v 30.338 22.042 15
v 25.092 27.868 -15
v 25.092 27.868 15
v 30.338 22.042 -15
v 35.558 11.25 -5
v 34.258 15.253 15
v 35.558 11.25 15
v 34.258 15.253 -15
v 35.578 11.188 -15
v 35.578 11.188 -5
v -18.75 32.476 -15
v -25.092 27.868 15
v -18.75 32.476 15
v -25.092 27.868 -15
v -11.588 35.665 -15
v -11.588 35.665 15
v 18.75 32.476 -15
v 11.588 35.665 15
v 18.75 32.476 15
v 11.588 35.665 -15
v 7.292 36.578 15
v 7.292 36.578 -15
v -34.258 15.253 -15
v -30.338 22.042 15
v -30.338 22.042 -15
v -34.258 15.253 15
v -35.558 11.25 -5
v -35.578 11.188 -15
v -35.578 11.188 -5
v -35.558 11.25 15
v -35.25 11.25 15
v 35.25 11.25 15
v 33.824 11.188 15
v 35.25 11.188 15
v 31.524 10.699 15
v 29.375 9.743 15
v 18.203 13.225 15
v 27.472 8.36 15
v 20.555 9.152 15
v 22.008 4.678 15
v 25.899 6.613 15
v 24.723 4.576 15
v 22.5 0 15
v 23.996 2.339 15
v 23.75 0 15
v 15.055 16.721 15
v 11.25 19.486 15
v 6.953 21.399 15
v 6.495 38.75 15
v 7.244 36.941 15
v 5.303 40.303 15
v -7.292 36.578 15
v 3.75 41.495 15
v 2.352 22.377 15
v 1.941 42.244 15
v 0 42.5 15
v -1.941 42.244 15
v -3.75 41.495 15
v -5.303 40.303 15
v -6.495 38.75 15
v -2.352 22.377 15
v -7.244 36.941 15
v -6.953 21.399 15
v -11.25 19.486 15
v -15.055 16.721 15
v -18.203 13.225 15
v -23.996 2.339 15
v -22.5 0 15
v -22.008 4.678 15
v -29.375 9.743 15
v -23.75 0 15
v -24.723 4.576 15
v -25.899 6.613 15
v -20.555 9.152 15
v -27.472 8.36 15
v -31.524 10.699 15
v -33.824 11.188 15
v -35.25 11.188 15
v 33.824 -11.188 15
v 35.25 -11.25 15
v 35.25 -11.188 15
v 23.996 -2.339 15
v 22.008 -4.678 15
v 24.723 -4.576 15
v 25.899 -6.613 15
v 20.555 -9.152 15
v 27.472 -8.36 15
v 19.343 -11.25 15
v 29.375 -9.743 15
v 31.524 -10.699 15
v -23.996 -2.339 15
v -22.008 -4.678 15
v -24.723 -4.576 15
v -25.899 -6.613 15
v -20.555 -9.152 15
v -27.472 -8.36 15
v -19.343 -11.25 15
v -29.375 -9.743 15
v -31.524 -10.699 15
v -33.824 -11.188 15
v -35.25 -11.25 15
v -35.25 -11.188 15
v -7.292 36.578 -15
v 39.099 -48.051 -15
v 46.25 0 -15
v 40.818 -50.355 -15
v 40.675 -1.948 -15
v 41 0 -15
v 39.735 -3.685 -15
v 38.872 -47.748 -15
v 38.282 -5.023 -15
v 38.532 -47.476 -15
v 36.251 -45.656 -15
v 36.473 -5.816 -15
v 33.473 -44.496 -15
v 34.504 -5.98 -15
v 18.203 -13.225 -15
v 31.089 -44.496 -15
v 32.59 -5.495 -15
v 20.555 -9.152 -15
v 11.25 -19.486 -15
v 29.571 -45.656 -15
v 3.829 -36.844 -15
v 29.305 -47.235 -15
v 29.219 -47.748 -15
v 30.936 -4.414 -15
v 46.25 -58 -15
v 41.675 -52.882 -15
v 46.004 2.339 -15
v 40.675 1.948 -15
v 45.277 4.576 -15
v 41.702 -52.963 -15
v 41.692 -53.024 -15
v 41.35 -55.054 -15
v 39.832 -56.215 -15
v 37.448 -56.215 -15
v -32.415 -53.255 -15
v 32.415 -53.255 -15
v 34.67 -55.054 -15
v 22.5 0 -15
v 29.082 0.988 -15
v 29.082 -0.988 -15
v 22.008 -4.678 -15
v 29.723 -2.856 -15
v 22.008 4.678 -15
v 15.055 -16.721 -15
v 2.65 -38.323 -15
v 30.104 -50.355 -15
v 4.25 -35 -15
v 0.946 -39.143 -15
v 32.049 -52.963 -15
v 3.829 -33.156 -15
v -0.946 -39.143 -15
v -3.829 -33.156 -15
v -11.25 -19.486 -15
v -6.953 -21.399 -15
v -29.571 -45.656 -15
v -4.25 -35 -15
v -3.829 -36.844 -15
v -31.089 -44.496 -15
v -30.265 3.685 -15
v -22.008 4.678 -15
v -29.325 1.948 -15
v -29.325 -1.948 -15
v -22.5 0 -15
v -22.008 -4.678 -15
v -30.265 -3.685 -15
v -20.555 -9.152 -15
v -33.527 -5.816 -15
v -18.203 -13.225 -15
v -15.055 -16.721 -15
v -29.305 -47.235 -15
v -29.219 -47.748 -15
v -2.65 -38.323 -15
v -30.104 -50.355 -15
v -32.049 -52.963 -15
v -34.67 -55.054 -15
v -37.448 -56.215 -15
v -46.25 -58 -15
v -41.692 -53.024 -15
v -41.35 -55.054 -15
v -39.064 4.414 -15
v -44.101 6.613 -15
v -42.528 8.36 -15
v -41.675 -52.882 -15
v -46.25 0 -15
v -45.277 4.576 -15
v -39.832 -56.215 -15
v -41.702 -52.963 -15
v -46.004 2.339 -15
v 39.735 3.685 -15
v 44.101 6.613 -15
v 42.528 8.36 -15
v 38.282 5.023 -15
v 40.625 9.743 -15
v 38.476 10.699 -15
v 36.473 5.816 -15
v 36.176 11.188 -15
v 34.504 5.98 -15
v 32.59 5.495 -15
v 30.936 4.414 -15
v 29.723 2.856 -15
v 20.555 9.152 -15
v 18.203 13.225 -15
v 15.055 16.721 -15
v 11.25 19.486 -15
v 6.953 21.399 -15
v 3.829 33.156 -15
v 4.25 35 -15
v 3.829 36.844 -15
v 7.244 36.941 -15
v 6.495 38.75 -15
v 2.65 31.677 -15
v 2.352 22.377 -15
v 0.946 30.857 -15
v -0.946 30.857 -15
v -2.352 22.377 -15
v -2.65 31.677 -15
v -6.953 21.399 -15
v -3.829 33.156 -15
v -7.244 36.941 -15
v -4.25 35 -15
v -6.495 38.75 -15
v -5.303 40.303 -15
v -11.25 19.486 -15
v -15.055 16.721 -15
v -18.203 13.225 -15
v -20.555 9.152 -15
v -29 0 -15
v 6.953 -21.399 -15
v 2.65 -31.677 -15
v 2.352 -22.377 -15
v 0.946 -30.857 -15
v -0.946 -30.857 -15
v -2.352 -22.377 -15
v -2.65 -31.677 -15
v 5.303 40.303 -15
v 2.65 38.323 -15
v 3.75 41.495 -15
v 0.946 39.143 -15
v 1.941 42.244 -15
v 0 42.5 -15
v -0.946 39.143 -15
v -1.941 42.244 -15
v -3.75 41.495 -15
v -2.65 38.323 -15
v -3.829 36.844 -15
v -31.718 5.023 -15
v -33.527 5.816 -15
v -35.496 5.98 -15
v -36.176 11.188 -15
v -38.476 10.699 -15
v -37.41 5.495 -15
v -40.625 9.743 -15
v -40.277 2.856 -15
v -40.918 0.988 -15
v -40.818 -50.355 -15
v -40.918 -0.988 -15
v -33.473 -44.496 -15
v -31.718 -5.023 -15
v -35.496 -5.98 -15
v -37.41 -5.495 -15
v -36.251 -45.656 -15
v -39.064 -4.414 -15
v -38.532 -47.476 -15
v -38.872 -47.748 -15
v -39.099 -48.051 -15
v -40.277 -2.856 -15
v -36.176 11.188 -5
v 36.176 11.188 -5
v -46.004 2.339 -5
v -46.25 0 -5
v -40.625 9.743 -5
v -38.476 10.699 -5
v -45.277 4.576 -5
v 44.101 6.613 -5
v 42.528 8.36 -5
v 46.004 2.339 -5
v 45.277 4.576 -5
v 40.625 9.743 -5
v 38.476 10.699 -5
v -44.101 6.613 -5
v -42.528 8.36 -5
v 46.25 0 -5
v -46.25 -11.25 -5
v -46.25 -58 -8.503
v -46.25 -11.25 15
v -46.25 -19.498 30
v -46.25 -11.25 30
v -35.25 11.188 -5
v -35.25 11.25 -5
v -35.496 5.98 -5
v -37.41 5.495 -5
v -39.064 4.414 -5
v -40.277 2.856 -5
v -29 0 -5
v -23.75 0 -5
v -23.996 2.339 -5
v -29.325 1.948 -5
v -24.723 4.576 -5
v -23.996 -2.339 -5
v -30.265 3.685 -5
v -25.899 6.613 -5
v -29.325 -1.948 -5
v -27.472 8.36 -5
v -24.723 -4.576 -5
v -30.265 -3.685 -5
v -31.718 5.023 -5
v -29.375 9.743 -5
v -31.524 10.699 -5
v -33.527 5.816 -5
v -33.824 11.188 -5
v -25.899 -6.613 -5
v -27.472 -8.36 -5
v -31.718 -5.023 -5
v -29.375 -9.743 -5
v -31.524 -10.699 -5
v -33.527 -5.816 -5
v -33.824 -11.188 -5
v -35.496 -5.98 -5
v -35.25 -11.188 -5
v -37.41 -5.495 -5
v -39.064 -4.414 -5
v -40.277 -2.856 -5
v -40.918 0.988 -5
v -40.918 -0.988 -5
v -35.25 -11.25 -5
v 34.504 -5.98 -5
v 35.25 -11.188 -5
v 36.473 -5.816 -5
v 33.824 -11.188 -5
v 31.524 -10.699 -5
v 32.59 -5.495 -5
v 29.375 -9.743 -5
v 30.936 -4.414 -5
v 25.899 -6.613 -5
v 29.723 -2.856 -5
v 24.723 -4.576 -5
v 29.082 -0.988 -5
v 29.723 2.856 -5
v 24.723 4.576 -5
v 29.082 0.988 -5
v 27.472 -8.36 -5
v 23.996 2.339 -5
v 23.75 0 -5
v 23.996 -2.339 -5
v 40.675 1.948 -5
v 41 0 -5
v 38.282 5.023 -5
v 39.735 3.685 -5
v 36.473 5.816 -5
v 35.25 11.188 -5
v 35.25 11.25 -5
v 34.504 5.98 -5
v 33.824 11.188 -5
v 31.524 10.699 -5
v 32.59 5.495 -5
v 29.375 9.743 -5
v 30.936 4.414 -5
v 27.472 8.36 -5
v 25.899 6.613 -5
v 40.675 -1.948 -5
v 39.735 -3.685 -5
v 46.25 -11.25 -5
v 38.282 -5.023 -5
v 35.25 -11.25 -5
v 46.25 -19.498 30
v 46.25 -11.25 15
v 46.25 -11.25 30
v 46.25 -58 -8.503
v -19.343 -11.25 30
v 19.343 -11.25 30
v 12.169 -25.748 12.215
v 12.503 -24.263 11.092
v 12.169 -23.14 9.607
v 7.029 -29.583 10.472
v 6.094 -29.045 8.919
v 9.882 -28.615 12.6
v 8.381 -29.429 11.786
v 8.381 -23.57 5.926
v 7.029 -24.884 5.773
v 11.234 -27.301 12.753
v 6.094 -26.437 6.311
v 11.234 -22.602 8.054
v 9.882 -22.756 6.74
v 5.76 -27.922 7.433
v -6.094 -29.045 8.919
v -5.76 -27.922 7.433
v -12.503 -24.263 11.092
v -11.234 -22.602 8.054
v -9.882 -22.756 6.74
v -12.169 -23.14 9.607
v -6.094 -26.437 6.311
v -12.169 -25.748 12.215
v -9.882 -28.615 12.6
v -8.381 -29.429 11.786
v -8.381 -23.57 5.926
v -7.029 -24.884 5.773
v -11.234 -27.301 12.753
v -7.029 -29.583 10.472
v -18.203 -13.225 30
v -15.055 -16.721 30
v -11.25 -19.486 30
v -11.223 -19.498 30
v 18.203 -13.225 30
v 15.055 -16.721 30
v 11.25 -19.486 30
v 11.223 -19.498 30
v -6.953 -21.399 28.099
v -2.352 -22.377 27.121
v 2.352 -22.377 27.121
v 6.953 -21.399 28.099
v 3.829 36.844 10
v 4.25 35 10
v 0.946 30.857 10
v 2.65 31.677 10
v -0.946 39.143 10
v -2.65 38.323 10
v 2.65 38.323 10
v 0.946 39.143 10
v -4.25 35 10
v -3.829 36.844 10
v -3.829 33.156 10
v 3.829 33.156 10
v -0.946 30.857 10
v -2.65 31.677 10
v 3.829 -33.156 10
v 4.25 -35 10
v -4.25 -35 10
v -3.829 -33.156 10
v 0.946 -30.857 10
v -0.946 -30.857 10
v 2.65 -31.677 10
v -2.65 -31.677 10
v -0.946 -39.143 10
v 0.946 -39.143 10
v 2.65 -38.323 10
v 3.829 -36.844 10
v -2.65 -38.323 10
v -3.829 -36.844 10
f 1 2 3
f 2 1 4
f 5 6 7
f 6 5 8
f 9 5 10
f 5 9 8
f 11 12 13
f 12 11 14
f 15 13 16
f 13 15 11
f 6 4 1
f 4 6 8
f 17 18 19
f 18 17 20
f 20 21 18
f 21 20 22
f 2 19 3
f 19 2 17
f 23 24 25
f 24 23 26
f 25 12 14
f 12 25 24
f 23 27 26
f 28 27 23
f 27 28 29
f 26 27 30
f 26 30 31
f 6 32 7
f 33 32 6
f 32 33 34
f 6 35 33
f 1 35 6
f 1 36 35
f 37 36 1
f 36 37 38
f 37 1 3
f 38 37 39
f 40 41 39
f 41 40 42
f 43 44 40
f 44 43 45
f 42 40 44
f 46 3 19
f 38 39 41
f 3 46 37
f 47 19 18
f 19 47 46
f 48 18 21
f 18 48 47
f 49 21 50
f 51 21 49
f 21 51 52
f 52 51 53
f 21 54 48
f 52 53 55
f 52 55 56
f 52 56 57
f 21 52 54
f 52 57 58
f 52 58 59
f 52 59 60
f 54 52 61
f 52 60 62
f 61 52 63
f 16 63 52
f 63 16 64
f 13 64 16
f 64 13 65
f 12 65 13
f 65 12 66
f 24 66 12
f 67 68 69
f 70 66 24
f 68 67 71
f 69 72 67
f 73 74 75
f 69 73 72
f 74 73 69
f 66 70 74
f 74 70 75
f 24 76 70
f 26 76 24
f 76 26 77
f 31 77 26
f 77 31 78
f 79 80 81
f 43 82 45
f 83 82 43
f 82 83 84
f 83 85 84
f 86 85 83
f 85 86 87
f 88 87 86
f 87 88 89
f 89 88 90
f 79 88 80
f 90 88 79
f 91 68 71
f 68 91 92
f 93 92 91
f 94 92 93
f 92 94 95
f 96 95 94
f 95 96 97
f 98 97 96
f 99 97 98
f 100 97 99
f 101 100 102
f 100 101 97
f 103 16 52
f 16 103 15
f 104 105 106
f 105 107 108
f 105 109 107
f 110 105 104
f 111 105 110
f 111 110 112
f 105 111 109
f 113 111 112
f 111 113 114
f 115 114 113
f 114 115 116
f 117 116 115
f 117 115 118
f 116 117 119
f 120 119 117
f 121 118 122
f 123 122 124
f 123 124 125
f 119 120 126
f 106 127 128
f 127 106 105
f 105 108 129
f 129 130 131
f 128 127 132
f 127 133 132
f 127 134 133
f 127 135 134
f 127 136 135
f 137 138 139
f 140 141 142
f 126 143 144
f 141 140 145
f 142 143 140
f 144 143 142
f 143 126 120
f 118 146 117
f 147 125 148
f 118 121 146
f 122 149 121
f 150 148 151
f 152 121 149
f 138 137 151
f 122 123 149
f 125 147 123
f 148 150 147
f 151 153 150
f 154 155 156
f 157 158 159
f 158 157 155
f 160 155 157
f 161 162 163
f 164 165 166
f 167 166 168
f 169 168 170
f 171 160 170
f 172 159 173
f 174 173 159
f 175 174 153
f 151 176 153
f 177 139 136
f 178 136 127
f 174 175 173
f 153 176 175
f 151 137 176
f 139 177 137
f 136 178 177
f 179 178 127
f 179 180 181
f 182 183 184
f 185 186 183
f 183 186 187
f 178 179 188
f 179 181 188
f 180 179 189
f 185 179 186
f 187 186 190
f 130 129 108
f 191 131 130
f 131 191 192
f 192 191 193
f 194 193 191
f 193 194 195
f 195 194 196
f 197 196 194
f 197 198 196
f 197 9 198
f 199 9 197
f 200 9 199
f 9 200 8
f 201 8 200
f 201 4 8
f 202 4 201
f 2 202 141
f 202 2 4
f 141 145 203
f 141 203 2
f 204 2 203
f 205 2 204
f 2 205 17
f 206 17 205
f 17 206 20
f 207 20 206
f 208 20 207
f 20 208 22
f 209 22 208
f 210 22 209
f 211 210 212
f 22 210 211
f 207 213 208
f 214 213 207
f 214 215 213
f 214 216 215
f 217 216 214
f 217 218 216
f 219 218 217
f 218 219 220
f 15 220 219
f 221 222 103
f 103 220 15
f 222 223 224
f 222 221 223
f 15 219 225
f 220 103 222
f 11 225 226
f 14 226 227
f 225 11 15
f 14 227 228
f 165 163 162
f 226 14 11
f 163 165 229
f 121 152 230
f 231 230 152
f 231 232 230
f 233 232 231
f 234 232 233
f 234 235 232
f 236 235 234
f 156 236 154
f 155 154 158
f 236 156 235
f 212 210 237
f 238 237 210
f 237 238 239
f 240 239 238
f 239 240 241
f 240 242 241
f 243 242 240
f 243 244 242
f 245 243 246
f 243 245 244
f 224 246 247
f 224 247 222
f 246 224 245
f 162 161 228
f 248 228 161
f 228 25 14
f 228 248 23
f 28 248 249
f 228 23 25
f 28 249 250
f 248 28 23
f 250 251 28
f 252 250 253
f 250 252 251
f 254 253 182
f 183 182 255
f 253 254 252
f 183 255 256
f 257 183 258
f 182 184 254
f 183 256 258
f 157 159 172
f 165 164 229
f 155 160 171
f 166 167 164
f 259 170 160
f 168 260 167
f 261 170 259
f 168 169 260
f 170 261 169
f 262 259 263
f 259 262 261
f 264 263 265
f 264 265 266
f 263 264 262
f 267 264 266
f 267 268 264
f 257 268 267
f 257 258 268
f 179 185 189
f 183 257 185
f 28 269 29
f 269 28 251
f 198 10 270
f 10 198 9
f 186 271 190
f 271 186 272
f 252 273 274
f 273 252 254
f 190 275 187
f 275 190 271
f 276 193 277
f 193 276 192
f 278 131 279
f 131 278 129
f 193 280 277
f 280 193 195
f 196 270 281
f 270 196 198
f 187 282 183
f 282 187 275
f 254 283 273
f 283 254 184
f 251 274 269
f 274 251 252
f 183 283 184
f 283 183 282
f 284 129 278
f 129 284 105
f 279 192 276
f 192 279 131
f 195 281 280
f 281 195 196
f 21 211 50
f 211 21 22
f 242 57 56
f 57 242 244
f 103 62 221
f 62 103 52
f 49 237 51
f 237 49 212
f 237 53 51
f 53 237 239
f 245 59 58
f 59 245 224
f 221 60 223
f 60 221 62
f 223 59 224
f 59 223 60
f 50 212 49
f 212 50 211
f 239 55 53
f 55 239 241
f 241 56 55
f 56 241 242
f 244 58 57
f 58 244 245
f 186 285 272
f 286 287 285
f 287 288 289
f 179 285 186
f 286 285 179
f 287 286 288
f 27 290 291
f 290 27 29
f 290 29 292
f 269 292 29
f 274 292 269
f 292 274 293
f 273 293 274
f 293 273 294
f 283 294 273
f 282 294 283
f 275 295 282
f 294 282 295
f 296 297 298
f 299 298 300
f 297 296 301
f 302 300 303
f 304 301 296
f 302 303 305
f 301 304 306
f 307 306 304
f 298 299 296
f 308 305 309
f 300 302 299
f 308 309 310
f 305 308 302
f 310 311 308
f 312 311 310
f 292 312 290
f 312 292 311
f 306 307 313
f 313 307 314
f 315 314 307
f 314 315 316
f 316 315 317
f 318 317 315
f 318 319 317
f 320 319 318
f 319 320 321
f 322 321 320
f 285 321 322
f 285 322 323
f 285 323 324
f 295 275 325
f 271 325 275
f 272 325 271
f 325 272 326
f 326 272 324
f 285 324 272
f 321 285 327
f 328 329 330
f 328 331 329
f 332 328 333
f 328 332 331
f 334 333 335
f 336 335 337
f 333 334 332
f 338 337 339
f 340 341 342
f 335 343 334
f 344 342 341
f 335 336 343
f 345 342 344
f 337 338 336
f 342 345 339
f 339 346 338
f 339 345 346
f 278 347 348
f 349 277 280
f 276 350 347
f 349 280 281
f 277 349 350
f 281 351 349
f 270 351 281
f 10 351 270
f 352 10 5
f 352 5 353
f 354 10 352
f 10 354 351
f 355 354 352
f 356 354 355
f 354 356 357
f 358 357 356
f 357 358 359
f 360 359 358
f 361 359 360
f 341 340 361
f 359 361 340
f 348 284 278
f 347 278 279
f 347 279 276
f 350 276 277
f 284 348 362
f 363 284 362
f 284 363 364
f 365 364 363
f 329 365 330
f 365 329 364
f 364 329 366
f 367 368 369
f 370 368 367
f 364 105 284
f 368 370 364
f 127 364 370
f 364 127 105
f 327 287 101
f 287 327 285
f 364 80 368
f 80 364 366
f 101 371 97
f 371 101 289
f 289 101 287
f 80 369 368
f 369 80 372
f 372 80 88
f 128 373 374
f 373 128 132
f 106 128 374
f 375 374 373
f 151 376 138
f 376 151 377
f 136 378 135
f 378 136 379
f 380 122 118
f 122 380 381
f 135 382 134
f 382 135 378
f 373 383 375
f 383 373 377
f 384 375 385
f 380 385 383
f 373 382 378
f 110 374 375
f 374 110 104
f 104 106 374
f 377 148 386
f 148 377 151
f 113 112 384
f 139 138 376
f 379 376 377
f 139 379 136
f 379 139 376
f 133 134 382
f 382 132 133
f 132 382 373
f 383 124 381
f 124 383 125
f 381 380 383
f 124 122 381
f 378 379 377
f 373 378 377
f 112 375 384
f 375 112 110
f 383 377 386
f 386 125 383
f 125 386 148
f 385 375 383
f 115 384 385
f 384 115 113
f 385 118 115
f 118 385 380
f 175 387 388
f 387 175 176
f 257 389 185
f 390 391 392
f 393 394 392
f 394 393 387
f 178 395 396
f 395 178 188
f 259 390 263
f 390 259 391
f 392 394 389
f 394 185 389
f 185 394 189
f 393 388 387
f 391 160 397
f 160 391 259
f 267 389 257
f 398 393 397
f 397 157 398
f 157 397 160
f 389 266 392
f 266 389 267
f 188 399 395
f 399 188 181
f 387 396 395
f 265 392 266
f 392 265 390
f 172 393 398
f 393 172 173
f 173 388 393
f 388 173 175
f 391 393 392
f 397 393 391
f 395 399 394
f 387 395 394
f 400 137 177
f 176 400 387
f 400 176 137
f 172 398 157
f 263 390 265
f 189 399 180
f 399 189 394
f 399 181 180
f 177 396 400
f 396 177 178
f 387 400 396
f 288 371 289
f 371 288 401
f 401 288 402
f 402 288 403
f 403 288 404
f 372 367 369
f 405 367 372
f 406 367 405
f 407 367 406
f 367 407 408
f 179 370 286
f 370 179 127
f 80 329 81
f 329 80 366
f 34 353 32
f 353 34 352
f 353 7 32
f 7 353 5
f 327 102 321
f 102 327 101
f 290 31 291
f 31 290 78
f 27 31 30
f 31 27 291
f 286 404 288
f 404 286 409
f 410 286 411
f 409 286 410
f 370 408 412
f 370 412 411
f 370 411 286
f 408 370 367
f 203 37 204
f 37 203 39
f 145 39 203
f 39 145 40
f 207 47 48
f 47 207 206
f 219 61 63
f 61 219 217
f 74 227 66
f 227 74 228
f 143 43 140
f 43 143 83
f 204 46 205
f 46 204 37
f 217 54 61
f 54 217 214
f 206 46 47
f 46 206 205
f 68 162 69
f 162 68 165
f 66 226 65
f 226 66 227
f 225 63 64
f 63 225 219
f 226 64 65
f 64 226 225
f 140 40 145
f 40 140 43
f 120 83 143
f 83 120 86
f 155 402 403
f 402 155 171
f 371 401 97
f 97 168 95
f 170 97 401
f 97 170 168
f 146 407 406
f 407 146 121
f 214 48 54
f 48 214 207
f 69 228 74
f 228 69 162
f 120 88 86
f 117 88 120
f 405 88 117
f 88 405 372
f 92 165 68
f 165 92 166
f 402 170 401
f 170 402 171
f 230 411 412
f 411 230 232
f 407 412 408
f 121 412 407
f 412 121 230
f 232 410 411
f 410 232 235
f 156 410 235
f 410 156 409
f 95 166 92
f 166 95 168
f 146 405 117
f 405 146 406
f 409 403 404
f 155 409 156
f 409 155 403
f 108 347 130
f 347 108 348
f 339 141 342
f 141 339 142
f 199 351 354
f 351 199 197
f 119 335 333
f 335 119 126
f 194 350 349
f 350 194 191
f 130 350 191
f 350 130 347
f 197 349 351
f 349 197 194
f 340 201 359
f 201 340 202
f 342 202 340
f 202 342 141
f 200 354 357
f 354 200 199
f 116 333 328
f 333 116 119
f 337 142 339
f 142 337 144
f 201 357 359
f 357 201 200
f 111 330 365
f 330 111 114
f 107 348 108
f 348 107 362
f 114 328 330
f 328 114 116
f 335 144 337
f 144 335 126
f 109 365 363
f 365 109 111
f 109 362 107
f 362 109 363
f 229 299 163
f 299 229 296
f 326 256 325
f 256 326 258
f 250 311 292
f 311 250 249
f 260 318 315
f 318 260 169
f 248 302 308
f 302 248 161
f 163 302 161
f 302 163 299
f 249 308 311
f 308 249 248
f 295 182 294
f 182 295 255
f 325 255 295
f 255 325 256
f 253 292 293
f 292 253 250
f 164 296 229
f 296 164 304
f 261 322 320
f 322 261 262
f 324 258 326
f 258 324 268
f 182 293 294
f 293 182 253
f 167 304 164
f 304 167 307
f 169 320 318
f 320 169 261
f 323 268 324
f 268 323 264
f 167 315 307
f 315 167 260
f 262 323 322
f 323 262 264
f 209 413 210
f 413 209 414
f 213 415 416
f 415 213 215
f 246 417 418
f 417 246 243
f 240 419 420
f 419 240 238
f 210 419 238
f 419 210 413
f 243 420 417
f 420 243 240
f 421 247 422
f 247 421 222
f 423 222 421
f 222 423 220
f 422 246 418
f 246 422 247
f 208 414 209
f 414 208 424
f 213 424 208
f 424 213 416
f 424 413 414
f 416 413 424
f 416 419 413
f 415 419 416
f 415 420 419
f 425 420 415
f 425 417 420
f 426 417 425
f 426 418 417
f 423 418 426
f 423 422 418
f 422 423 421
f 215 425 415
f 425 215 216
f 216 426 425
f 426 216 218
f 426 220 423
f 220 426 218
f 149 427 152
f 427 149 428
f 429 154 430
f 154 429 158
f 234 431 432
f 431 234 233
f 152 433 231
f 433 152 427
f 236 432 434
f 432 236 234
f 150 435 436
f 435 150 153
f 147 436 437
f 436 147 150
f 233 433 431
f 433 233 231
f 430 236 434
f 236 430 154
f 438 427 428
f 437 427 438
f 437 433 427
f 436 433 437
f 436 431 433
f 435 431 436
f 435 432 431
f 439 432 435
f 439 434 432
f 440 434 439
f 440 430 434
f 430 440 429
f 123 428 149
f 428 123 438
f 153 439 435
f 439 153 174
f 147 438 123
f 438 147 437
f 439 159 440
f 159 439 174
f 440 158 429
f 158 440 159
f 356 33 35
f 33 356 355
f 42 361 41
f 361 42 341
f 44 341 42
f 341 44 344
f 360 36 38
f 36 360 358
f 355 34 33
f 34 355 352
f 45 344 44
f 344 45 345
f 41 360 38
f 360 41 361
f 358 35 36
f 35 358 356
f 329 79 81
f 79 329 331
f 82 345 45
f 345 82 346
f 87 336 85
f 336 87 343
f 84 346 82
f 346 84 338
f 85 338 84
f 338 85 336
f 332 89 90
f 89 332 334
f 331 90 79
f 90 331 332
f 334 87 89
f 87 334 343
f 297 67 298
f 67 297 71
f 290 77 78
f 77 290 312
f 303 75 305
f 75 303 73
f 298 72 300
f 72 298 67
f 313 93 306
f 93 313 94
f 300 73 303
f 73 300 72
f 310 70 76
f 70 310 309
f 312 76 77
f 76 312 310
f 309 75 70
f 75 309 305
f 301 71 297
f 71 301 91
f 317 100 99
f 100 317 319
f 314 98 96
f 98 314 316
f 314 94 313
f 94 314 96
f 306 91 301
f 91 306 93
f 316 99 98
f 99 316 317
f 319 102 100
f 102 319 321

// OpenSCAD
base();

module base() {
	difference() {
		union() {
			cylinder(d=75, h=30, center=true);
			
			hull() {
				translate([35,0,0])
					cylinder(d=22.5, h=30, center = true);
				translate([-35,0,0])
					cylinder(d=22.5, h=30, center = true);
			}
			
			hull() {
				translate([0,35,0])
					cylinder(d=15, h=30, center = true);
				translate([0,-35,0])
					cylinder(d=15, h=30, center = true);
			}
			
			translate([0,-22.5/4,-10])
				cube([92.5,22.5/2,10], center=true);
			translate([0,-50-22.5/2,50-15])
				cube([92.5,100,100], center=true);
		}
		
		translate([0,0,250+30])
			cube([500,500,500],center=true);
		translate([0,-250-58,0])
			cube([500,500,500],center=true);
		
		translate([22.5+24,0,5])
				cube([22.5,22.5,20],center=true);
		translate([-22.5-24,0,5])
				cube([22.5,22.5,20],center=true);
		rotate([45,0,0])
			translate([0,0,35+500])
				cube([1000,1000,1000],center=true);
		
		cylinder(d=45, h=100, center = true);
		
		// 10mm Rod Holes
		translate([35,0,0])
			cylinder(d=12, h=30+0.1, center = true);
		translate([-35,0,0])
			cylinder(d=12, h=30+0.1, center = true);
		
		// 8mm Rod Holes
		translate([0,35,-5])
			cylinder(d=8.5, h=30, center = true);
		translate([0,-35,-5])
			cylinder(d=8.5, h=30, center = true);
		
		// Nut Holes
		translate([35,0,-5])
			cylinder(d=22.5, h=20, center = false);
		translate([-35,0,-5])
			cylinder(d=22.5, h=20, center = false);
			
		// Stand Holes
		#rotate([135,0,0]) {
			rotate([0,37.5,0]) //355
				translate([0,25,50/2+15])
					cylinder(d=8.5, h=50, center = true);
			rotate([0,-37.5,0])
				translate([0,25,50/2+15])
					cylinder(d=8.5, h=50, center = true);
		}
	}
}
